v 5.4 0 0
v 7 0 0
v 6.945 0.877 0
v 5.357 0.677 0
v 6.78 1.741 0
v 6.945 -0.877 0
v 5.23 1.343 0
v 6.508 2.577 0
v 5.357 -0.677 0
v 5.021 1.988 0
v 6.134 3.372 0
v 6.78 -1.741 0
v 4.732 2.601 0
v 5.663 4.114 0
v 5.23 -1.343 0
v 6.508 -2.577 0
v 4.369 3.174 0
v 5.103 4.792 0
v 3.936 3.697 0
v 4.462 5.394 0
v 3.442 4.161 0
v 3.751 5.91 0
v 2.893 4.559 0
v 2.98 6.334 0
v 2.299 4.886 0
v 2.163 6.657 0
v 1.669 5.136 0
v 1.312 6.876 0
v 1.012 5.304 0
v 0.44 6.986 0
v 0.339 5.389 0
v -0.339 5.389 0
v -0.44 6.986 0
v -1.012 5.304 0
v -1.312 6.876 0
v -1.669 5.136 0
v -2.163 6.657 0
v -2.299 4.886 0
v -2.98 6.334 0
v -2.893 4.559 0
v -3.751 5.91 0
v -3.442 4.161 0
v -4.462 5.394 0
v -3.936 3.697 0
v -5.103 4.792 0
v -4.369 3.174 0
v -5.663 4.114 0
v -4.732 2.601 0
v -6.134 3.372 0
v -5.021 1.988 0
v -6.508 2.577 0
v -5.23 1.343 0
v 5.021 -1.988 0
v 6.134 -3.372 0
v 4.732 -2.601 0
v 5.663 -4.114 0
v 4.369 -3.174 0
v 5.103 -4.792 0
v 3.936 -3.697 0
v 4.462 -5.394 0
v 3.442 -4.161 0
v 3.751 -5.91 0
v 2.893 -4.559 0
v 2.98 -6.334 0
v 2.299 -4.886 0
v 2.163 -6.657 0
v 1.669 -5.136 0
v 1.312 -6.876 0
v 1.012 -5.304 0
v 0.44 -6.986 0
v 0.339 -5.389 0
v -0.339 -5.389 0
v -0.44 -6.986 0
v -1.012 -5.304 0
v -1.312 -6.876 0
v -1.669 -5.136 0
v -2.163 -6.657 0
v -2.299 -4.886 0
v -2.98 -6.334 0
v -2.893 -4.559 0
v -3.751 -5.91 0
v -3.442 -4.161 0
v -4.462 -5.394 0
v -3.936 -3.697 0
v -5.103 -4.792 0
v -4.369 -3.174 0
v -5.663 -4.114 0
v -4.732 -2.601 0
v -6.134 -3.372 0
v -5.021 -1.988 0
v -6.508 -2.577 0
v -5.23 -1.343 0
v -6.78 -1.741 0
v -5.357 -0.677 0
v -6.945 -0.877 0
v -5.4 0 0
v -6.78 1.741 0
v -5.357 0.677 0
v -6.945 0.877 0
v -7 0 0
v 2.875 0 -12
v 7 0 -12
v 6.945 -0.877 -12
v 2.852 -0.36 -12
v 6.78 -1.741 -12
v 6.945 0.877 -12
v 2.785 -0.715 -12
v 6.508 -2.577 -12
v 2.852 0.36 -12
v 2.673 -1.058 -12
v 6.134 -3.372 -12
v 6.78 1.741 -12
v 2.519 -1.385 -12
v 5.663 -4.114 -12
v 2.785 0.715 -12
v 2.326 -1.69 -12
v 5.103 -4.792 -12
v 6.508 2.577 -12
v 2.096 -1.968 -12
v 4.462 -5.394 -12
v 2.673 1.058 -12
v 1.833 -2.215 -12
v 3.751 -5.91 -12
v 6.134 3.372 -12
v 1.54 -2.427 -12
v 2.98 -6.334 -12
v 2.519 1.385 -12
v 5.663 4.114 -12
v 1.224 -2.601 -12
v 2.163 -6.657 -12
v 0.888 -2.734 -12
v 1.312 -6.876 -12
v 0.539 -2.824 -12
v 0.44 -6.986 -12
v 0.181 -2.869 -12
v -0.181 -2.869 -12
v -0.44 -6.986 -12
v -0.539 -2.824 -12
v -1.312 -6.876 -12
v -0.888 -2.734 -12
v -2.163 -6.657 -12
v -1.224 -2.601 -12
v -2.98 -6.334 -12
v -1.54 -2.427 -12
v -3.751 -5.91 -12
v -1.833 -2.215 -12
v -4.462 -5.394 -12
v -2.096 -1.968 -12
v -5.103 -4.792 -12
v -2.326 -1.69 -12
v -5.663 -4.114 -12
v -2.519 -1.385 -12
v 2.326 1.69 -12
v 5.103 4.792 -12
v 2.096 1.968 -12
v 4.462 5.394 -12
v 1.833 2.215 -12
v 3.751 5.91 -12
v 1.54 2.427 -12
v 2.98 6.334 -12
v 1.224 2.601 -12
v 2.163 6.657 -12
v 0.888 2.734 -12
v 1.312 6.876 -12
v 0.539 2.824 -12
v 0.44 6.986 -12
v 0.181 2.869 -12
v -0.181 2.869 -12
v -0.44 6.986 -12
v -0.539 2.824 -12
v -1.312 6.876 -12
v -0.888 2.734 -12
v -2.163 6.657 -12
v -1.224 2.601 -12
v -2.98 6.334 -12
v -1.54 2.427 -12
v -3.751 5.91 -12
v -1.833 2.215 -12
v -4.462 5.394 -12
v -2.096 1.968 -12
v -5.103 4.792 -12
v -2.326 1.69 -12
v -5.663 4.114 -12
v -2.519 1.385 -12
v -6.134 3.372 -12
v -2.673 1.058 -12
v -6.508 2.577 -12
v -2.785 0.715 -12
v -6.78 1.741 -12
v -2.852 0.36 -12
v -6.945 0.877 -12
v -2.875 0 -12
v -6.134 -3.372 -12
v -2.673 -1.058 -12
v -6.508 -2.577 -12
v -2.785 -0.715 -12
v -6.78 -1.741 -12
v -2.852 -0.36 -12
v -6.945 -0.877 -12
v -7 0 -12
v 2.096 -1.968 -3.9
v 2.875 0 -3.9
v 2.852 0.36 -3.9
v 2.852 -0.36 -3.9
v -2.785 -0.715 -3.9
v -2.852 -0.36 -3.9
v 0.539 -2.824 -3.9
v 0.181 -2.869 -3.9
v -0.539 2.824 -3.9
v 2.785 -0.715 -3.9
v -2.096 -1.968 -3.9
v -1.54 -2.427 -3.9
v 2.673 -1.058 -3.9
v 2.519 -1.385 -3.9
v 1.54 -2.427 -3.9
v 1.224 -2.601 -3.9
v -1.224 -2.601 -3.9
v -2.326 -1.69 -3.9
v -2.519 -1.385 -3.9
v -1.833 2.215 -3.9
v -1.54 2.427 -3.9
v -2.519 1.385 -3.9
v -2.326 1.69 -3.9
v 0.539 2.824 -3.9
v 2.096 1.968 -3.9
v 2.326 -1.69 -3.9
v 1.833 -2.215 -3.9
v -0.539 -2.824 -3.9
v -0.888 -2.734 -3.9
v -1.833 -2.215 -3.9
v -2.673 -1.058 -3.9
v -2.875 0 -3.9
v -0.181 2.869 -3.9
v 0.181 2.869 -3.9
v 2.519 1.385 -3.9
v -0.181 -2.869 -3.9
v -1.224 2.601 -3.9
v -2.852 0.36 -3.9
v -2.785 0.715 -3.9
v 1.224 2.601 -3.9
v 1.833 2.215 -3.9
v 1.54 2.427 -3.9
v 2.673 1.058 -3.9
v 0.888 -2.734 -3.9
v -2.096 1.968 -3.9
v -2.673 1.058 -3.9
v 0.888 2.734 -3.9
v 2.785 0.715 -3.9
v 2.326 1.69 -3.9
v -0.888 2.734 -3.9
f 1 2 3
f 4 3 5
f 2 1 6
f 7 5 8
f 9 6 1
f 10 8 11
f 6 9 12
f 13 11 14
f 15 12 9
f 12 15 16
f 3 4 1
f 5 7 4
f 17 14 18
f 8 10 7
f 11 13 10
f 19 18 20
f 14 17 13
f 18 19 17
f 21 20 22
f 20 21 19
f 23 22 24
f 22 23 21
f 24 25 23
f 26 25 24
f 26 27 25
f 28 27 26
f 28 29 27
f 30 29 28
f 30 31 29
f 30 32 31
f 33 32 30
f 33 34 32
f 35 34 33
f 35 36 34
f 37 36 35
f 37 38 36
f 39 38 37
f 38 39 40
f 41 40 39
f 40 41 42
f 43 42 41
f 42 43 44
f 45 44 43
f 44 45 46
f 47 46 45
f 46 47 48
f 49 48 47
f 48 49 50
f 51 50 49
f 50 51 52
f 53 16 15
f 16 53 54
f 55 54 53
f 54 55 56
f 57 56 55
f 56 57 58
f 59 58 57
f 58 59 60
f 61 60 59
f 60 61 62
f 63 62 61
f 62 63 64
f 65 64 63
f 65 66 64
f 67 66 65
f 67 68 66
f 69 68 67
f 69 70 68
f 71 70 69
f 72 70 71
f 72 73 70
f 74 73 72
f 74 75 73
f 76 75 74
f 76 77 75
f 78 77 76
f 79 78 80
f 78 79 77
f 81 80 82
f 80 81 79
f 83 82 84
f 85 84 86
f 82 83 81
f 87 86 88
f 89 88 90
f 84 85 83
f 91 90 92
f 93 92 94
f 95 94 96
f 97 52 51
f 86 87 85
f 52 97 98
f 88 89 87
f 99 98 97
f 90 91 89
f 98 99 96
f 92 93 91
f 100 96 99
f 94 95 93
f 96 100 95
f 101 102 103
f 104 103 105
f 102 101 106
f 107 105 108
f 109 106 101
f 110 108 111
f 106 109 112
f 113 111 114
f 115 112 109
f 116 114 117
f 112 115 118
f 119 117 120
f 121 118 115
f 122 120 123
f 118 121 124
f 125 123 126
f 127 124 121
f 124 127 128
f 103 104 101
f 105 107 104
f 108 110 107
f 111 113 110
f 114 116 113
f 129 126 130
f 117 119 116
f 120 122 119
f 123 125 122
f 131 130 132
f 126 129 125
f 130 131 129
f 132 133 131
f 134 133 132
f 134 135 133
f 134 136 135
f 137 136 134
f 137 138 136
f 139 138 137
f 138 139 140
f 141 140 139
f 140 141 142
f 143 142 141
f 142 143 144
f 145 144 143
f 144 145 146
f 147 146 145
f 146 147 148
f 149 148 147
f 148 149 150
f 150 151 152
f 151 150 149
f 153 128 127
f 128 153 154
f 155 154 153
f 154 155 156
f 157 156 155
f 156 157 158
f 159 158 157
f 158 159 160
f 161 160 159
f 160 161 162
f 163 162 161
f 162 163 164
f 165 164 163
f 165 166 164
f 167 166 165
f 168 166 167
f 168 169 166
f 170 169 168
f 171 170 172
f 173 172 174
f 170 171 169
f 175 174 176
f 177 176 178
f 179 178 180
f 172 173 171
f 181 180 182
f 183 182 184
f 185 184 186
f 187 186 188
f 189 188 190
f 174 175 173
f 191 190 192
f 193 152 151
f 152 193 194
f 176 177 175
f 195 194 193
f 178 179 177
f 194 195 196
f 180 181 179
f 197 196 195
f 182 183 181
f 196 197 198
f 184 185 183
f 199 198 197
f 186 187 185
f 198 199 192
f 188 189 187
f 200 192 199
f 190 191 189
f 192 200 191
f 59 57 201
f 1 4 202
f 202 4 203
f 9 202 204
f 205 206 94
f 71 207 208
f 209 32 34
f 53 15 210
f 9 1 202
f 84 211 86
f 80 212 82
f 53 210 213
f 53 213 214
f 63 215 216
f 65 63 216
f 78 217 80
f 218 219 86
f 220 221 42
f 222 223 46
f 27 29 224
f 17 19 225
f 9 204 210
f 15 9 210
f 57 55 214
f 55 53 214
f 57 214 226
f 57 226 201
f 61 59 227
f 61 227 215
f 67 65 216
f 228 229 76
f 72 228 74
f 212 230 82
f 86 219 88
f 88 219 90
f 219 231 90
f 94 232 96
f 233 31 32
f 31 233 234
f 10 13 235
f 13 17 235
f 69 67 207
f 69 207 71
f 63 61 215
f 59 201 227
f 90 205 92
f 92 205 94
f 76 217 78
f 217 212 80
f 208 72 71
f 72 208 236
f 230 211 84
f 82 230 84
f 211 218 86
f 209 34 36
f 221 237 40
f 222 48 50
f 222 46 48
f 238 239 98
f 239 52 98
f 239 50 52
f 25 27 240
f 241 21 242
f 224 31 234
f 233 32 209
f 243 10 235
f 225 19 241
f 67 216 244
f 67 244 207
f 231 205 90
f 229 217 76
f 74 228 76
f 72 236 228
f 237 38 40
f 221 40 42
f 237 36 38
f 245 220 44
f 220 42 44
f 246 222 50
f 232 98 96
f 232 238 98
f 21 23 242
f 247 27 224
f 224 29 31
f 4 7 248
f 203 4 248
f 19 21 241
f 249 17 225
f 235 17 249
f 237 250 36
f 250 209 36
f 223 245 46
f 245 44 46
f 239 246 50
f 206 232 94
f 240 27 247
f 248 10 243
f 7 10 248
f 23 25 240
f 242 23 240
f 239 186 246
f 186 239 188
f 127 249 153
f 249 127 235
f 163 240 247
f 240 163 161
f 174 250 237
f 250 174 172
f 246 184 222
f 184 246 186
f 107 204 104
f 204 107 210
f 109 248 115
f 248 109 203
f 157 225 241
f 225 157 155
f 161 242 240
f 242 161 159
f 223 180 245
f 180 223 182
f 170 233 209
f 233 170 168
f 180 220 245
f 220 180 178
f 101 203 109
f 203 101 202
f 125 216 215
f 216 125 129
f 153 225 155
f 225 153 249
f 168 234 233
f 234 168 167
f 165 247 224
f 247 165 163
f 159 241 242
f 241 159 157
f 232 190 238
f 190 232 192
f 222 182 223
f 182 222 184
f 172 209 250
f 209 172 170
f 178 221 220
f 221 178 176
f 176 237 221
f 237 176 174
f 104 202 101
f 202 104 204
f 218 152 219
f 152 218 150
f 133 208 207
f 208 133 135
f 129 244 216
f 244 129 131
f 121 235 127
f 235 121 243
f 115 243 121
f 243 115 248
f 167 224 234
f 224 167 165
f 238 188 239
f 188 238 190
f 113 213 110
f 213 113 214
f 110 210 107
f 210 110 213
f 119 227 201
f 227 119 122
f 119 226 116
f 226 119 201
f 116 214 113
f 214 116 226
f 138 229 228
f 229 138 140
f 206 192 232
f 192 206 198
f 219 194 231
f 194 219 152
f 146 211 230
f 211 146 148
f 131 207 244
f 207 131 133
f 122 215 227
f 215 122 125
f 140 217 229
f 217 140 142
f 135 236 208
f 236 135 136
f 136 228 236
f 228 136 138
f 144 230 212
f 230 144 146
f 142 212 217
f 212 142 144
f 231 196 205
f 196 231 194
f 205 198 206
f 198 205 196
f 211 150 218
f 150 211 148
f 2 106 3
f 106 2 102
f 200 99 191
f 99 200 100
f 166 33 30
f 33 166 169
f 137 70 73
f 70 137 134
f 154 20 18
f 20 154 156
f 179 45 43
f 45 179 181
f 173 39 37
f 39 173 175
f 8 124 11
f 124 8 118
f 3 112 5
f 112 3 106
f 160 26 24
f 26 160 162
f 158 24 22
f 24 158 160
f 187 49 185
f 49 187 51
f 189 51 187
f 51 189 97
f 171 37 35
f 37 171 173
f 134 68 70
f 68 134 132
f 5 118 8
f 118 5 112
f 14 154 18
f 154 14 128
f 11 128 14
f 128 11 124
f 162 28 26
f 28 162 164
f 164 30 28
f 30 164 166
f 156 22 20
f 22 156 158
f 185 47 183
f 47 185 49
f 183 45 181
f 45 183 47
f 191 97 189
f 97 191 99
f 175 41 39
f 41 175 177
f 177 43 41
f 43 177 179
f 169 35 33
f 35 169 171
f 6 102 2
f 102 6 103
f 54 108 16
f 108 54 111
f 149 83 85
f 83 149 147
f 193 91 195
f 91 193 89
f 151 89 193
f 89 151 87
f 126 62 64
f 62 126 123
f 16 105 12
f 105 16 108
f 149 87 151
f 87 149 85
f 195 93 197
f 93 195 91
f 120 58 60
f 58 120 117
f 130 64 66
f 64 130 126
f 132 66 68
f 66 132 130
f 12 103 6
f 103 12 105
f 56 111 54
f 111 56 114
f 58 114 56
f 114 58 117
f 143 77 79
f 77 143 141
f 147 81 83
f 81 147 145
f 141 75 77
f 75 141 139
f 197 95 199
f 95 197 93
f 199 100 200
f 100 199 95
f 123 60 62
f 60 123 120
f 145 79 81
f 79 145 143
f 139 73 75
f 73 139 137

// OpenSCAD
$fn = 50;


difference() {
	union() {
		translate(v = [0, 0, -12.0000000000]) {
			cylinder(h = 12, r = 7.0000000000);
		}
	}
	union() {
		translate(v = [0, 0, 0]) {
			rotate(a = [0, 0, 0]) {
				difference() {
					union() {
						translate(v = [0, 0, -12.0000000000]) {
							cylinder(h = 12, r = 2.6000000000);
						}
						translate(v = [0, 0, -3.9000000000]) {
							cylinder(h = 3.9000000000, r1 = 2.8750000000, r2 = 5.4000000000);
						}
						translate(v = [0, 0, -12.0000000000]) {
							cylinder(h = 12, r = 2.8750000000);
						}
						translate(v = [0, 0, -12.0000000000]) {
							cylinder(h = 12, r = 2.6000000000);
						}
					}
					union();
				}
			}
		}
	}
}
